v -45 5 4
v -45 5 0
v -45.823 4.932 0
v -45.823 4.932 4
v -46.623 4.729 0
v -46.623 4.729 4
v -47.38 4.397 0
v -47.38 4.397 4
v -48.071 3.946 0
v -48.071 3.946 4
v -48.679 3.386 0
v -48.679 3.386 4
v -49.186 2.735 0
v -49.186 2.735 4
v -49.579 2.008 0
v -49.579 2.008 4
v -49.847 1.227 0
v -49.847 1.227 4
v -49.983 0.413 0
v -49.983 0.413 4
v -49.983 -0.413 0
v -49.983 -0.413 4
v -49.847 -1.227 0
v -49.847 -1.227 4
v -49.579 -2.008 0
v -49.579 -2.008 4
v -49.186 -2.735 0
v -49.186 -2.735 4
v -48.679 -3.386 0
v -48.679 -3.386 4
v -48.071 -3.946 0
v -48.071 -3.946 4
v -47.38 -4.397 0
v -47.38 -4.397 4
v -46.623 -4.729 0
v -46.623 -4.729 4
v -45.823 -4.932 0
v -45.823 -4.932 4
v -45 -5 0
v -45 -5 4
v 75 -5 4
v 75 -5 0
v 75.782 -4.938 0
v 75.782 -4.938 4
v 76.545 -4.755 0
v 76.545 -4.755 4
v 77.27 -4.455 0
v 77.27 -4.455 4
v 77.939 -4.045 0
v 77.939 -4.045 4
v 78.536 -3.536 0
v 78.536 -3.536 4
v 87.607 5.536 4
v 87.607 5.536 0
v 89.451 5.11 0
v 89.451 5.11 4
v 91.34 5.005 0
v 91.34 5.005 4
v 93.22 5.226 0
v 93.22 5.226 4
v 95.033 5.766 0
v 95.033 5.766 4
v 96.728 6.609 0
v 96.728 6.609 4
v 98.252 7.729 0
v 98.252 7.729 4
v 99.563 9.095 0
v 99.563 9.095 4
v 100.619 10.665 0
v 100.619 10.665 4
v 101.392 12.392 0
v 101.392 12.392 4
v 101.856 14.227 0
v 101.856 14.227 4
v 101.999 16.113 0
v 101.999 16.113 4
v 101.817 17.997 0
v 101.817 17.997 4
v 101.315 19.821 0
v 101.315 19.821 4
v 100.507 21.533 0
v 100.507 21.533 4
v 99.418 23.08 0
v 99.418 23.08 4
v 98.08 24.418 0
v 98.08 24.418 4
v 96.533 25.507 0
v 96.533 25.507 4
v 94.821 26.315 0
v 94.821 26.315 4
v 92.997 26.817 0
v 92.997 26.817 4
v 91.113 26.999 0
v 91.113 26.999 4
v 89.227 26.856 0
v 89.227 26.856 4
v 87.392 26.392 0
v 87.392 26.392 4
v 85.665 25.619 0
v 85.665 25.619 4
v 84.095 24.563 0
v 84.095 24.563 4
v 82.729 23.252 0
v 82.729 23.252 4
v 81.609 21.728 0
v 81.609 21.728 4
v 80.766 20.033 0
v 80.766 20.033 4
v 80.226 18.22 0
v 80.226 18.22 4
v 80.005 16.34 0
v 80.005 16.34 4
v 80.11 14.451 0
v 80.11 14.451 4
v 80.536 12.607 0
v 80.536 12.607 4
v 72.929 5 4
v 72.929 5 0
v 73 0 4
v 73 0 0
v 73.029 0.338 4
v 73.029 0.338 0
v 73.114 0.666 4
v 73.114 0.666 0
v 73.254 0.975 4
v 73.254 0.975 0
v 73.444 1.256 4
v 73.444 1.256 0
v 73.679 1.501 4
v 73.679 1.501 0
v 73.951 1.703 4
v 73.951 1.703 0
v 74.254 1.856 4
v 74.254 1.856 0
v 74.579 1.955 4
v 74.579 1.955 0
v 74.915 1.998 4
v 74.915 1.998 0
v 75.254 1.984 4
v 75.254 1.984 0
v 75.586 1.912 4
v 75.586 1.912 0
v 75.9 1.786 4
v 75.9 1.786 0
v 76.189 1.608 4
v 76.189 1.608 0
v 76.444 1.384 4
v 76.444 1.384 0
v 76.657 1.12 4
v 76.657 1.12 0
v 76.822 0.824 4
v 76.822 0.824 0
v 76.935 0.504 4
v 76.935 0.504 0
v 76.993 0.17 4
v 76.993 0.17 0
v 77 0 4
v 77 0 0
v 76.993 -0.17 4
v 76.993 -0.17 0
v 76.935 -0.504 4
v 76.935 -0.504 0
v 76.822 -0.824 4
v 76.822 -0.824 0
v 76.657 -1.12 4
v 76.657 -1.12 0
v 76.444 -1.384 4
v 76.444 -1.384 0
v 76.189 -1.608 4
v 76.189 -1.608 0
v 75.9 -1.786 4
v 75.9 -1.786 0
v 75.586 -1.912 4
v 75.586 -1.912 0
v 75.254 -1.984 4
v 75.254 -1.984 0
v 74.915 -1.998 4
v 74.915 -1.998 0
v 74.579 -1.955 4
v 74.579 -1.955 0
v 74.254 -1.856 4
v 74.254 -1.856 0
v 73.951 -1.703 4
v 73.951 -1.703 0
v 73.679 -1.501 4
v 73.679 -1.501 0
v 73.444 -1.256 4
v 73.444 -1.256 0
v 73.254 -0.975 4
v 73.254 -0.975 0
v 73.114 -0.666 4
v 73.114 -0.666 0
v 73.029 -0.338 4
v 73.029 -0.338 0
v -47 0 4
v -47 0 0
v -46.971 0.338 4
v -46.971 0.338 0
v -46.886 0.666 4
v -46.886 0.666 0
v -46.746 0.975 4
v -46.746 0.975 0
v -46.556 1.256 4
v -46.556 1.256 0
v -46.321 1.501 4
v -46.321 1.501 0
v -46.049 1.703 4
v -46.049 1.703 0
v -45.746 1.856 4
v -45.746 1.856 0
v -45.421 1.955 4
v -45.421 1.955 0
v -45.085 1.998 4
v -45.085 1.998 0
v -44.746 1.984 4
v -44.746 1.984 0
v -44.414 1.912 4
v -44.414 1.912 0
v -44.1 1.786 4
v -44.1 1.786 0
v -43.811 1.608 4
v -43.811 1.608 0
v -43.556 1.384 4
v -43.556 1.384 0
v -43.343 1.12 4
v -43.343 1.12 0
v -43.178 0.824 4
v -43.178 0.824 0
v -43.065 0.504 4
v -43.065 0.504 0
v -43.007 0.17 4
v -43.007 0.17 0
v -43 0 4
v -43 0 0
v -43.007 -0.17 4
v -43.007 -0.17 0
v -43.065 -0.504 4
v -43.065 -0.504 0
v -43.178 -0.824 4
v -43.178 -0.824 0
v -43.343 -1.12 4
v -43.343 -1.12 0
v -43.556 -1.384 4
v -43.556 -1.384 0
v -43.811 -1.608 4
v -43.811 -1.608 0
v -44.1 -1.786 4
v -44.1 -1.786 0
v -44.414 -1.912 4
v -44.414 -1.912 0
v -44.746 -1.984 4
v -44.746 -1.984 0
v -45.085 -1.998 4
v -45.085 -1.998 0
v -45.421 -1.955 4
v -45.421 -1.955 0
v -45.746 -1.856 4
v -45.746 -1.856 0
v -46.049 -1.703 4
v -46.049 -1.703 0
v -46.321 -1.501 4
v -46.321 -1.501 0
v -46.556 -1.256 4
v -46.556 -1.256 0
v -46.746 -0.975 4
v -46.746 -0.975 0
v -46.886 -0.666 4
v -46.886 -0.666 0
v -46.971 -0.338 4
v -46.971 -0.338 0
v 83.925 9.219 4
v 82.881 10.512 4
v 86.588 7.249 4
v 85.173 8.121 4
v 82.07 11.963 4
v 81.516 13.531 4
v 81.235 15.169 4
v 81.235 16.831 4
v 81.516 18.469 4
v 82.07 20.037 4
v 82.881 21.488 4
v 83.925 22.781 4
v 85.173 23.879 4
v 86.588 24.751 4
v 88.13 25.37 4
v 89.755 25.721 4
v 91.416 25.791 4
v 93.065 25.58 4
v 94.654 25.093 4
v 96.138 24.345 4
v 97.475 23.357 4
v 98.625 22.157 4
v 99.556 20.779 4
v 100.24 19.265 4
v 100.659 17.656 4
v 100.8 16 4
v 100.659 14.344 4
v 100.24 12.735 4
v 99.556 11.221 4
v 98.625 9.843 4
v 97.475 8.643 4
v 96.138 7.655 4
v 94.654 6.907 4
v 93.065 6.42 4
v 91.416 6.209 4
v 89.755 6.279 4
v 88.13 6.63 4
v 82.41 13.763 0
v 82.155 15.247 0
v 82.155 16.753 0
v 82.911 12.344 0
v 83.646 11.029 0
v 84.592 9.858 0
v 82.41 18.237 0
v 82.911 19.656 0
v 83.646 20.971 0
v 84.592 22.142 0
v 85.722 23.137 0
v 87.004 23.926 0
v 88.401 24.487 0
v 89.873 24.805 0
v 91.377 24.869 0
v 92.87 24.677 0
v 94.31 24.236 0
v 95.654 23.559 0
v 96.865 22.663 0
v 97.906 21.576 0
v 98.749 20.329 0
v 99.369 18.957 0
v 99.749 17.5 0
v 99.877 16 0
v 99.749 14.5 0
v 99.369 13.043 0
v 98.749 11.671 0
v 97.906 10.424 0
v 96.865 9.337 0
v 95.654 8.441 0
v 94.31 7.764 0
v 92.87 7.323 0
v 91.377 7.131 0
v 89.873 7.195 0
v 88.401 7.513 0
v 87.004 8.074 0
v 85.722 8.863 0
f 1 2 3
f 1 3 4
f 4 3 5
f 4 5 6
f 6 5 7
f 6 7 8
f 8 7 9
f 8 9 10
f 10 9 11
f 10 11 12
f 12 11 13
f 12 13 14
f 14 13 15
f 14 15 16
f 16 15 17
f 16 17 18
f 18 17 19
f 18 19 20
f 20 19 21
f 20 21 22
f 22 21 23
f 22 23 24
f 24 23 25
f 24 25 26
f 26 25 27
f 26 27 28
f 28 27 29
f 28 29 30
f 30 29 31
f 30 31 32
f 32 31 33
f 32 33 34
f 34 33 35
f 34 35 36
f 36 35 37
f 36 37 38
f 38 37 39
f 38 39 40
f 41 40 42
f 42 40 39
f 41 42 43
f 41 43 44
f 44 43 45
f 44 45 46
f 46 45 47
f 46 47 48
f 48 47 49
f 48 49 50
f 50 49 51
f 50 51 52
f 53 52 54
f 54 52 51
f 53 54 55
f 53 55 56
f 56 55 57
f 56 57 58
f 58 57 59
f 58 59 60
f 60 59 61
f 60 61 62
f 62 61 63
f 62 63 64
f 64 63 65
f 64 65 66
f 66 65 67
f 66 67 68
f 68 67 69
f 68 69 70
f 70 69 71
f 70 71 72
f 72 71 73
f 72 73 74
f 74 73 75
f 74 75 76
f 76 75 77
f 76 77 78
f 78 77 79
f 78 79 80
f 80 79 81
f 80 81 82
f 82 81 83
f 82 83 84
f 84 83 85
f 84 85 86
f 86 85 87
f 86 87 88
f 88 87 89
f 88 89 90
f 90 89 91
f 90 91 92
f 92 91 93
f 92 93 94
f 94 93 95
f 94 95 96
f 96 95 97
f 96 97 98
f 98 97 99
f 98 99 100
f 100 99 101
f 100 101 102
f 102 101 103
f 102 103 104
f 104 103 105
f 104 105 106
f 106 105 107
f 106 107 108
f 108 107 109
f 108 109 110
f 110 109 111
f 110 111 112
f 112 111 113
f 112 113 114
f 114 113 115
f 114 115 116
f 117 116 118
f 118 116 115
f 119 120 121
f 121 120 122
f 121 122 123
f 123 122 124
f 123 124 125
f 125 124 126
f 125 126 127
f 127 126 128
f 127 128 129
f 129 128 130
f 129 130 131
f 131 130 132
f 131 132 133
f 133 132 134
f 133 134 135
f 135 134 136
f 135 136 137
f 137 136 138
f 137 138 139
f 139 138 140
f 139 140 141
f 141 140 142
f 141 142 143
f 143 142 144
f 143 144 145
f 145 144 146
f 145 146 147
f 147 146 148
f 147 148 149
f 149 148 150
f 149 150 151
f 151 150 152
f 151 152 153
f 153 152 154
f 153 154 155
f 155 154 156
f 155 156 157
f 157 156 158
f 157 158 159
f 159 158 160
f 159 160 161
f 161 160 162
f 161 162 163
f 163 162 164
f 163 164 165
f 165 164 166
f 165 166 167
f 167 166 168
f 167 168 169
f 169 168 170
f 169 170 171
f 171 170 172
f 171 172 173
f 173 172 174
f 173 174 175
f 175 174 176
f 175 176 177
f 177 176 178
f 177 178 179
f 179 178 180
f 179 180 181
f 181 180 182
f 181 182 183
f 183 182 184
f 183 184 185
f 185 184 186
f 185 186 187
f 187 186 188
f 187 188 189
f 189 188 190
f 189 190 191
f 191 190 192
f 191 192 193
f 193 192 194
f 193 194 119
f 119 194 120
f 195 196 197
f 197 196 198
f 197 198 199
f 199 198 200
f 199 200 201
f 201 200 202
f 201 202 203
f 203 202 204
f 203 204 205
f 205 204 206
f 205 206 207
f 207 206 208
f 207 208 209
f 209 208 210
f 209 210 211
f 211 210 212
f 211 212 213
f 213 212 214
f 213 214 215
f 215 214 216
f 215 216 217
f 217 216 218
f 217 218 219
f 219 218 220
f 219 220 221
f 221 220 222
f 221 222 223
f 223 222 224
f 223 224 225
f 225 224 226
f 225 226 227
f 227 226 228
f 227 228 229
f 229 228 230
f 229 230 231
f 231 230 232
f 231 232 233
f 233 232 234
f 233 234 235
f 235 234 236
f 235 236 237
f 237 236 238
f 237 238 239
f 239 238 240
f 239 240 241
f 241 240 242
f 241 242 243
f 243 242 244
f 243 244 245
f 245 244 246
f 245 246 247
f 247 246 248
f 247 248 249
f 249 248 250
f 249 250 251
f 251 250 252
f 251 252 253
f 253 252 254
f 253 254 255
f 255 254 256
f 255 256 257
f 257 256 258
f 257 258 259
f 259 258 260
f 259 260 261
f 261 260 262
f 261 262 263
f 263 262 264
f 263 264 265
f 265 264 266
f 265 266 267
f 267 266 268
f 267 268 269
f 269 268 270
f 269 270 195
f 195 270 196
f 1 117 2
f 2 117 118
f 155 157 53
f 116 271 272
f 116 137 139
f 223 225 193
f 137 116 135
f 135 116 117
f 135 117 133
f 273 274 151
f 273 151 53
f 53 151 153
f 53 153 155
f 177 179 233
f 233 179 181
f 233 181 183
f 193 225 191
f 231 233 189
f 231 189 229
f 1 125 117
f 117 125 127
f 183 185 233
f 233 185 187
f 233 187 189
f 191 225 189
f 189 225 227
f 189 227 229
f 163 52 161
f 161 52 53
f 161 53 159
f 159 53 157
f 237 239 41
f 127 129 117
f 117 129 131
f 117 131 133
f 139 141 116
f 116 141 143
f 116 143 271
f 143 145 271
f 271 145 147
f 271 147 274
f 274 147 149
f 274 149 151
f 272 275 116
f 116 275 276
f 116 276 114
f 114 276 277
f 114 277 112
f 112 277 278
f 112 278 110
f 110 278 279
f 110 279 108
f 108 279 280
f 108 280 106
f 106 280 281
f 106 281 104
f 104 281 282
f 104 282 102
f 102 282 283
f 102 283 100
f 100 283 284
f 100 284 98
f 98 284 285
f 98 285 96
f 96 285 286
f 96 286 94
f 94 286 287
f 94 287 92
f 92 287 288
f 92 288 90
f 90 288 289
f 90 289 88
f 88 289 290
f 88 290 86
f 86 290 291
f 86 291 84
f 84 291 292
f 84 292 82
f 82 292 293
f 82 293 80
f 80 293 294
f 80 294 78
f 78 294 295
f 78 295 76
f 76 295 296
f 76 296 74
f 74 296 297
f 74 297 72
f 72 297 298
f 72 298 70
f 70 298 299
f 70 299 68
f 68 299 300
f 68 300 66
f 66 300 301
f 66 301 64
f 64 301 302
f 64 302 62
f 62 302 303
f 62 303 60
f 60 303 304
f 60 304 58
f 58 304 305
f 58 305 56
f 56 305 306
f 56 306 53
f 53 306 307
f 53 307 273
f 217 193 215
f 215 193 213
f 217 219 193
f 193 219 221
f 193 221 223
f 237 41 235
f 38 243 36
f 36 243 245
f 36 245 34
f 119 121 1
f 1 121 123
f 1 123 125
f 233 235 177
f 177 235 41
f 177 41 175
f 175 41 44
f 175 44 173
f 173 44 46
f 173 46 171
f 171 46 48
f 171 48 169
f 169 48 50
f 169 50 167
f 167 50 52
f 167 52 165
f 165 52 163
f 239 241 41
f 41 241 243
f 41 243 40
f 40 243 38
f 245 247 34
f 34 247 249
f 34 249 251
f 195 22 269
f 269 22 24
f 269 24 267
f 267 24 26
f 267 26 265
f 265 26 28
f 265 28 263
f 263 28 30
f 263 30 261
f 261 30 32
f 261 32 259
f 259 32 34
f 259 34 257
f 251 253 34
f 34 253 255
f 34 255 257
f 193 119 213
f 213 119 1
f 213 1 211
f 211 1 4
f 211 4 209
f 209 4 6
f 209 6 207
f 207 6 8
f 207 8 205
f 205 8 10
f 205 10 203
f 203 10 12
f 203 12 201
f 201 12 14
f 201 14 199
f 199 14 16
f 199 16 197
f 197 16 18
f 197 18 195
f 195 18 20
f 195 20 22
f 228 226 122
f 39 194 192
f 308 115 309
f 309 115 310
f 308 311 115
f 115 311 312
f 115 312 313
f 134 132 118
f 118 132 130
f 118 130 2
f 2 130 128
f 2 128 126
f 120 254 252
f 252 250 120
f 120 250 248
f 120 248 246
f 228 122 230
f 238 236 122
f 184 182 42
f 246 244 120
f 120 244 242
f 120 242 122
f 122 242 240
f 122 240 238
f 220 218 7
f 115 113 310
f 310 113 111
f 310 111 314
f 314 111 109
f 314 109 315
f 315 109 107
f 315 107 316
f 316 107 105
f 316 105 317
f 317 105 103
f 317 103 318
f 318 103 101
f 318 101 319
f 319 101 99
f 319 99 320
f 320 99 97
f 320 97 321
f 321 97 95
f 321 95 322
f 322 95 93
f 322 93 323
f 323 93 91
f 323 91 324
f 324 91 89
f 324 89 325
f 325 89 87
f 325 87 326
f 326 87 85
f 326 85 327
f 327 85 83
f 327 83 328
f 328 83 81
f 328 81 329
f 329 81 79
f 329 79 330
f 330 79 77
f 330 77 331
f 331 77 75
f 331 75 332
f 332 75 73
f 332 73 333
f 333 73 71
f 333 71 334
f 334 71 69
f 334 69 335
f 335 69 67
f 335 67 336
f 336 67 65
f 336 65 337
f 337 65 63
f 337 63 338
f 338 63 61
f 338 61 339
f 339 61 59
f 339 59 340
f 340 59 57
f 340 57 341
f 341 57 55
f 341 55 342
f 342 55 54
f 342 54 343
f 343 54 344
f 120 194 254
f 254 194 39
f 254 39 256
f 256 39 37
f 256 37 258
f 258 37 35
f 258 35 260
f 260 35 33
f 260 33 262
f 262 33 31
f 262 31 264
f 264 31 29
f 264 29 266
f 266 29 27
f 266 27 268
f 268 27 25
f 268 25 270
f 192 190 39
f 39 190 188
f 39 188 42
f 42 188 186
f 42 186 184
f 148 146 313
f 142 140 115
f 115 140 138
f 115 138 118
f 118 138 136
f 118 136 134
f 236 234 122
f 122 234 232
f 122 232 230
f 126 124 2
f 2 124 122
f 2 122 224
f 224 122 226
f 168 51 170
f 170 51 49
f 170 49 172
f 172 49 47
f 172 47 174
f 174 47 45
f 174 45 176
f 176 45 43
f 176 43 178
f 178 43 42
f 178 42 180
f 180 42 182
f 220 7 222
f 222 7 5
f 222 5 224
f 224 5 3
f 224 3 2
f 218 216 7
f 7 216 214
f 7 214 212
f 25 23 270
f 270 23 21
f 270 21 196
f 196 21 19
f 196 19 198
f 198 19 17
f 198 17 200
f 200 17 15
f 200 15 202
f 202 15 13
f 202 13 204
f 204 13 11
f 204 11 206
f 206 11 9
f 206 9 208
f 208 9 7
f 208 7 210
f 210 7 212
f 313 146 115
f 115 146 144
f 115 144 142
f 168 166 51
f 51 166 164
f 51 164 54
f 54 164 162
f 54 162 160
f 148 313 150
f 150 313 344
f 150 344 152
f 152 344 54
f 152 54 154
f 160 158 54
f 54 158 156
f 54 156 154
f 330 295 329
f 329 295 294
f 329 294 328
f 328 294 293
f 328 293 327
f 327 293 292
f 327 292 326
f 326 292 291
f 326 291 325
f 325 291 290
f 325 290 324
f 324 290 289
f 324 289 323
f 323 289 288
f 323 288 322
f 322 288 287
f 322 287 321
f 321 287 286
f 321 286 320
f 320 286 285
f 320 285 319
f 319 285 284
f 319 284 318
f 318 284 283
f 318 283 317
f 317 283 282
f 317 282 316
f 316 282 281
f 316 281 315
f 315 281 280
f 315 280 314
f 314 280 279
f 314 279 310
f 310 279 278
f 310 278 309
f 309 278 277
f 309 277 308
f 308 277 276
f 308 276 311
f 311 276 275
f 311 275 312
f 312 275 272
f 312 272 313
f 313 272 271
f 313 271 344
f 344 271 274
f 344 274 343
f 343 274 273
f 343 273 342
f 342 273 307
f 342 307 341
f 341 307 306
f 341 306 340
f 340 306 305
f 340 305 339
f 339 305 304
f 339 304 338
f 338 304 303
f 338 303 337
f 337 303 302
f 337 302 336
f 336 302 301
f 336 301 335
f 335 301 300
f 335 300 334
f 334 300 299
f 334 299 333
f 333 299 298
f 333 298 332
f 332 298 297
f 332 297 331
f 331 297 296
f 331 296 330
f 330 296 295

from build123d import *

# Parameters (mm, degrees)
SKETCH1_R           = 2
SKETCH1_R_2         = 8.8
BOSS_EXTRUDE1_DEPTH = 4
SKETCH2_R           = 9.8
CUT_EXTRUDE2_DEPTH  = 4
CUT_EXTRUDE2_DRAFT  = -13


with BuildPart() as part:
    # Sketch1 → Boss-Extrude1 (new body)
    with BuildSketch(Plane.XY):
        with BuildLine():
            ThreePointArc((75, -5), (76.913417162, -4.619397663), (78.535533906, -3.535533906))
            Line((78.535533906, -3.535533906), (87.607330676, 5.536262864))
            ThreePointArc((87.607330676, 5.536262864), (98.778174593, 23.778174593), (80.536262864, 12.607330676))
            Line((80.536262864, 12.607330676), (72.928932188, 5))
            Line((72.928932188, 5), (-45, 5))
            ThreePointArc((-45, 5), (-50, 0), (-45, -5))
            Line((-45, -5), (75, -5))
        make_face()
        with Locations((-45, 0)):
            Circle(SKETCH1_R, mode=Mode.SUBTRACT)
        with Locations((75, 0)):
            Circle(SKETCH1_R, mode=Mode.SUBTRACT)
        with Locations((91, 16)):
            Circle(SKETCH1_R_2, mode=Mode.SUBTRACT)
    extrude(amount=BOSS_EXTRUDE1_DEPTH)


with BuildPart() as cut_extrude2_tool:
    # Sketch2 → Cut-Extrude2 (with draft: the straight prism first)
    with BuildSketch(Plane.XY.offset(4)):
        with Locations((91, 16)):
            Circle(SKETCH2_R)
    extrude(amount=-CUT_EXTRUDE2_DEPTH)
    # Cut-Extrude2: the draft: its side faces are tilted about the plane it starts from
    cut_extrude2_sides = [cut_extrude2_tool.faces().sort_by_distance(p)[0] for p in [
        (81.2, 16, 2),
    ]]
    draft(cut_extrude2_sides, Plane.XY.offset(4), CUT_EXTRUDE2_DRAFT)


with BuildPart() as part_1:
    add(part.part)

    # Cut-Extrude2: cut by cut_extrude2_tool
    add(cut_extrude2_tool.part, mode=Mode.SUBTRACT)


solid = part_1.part
